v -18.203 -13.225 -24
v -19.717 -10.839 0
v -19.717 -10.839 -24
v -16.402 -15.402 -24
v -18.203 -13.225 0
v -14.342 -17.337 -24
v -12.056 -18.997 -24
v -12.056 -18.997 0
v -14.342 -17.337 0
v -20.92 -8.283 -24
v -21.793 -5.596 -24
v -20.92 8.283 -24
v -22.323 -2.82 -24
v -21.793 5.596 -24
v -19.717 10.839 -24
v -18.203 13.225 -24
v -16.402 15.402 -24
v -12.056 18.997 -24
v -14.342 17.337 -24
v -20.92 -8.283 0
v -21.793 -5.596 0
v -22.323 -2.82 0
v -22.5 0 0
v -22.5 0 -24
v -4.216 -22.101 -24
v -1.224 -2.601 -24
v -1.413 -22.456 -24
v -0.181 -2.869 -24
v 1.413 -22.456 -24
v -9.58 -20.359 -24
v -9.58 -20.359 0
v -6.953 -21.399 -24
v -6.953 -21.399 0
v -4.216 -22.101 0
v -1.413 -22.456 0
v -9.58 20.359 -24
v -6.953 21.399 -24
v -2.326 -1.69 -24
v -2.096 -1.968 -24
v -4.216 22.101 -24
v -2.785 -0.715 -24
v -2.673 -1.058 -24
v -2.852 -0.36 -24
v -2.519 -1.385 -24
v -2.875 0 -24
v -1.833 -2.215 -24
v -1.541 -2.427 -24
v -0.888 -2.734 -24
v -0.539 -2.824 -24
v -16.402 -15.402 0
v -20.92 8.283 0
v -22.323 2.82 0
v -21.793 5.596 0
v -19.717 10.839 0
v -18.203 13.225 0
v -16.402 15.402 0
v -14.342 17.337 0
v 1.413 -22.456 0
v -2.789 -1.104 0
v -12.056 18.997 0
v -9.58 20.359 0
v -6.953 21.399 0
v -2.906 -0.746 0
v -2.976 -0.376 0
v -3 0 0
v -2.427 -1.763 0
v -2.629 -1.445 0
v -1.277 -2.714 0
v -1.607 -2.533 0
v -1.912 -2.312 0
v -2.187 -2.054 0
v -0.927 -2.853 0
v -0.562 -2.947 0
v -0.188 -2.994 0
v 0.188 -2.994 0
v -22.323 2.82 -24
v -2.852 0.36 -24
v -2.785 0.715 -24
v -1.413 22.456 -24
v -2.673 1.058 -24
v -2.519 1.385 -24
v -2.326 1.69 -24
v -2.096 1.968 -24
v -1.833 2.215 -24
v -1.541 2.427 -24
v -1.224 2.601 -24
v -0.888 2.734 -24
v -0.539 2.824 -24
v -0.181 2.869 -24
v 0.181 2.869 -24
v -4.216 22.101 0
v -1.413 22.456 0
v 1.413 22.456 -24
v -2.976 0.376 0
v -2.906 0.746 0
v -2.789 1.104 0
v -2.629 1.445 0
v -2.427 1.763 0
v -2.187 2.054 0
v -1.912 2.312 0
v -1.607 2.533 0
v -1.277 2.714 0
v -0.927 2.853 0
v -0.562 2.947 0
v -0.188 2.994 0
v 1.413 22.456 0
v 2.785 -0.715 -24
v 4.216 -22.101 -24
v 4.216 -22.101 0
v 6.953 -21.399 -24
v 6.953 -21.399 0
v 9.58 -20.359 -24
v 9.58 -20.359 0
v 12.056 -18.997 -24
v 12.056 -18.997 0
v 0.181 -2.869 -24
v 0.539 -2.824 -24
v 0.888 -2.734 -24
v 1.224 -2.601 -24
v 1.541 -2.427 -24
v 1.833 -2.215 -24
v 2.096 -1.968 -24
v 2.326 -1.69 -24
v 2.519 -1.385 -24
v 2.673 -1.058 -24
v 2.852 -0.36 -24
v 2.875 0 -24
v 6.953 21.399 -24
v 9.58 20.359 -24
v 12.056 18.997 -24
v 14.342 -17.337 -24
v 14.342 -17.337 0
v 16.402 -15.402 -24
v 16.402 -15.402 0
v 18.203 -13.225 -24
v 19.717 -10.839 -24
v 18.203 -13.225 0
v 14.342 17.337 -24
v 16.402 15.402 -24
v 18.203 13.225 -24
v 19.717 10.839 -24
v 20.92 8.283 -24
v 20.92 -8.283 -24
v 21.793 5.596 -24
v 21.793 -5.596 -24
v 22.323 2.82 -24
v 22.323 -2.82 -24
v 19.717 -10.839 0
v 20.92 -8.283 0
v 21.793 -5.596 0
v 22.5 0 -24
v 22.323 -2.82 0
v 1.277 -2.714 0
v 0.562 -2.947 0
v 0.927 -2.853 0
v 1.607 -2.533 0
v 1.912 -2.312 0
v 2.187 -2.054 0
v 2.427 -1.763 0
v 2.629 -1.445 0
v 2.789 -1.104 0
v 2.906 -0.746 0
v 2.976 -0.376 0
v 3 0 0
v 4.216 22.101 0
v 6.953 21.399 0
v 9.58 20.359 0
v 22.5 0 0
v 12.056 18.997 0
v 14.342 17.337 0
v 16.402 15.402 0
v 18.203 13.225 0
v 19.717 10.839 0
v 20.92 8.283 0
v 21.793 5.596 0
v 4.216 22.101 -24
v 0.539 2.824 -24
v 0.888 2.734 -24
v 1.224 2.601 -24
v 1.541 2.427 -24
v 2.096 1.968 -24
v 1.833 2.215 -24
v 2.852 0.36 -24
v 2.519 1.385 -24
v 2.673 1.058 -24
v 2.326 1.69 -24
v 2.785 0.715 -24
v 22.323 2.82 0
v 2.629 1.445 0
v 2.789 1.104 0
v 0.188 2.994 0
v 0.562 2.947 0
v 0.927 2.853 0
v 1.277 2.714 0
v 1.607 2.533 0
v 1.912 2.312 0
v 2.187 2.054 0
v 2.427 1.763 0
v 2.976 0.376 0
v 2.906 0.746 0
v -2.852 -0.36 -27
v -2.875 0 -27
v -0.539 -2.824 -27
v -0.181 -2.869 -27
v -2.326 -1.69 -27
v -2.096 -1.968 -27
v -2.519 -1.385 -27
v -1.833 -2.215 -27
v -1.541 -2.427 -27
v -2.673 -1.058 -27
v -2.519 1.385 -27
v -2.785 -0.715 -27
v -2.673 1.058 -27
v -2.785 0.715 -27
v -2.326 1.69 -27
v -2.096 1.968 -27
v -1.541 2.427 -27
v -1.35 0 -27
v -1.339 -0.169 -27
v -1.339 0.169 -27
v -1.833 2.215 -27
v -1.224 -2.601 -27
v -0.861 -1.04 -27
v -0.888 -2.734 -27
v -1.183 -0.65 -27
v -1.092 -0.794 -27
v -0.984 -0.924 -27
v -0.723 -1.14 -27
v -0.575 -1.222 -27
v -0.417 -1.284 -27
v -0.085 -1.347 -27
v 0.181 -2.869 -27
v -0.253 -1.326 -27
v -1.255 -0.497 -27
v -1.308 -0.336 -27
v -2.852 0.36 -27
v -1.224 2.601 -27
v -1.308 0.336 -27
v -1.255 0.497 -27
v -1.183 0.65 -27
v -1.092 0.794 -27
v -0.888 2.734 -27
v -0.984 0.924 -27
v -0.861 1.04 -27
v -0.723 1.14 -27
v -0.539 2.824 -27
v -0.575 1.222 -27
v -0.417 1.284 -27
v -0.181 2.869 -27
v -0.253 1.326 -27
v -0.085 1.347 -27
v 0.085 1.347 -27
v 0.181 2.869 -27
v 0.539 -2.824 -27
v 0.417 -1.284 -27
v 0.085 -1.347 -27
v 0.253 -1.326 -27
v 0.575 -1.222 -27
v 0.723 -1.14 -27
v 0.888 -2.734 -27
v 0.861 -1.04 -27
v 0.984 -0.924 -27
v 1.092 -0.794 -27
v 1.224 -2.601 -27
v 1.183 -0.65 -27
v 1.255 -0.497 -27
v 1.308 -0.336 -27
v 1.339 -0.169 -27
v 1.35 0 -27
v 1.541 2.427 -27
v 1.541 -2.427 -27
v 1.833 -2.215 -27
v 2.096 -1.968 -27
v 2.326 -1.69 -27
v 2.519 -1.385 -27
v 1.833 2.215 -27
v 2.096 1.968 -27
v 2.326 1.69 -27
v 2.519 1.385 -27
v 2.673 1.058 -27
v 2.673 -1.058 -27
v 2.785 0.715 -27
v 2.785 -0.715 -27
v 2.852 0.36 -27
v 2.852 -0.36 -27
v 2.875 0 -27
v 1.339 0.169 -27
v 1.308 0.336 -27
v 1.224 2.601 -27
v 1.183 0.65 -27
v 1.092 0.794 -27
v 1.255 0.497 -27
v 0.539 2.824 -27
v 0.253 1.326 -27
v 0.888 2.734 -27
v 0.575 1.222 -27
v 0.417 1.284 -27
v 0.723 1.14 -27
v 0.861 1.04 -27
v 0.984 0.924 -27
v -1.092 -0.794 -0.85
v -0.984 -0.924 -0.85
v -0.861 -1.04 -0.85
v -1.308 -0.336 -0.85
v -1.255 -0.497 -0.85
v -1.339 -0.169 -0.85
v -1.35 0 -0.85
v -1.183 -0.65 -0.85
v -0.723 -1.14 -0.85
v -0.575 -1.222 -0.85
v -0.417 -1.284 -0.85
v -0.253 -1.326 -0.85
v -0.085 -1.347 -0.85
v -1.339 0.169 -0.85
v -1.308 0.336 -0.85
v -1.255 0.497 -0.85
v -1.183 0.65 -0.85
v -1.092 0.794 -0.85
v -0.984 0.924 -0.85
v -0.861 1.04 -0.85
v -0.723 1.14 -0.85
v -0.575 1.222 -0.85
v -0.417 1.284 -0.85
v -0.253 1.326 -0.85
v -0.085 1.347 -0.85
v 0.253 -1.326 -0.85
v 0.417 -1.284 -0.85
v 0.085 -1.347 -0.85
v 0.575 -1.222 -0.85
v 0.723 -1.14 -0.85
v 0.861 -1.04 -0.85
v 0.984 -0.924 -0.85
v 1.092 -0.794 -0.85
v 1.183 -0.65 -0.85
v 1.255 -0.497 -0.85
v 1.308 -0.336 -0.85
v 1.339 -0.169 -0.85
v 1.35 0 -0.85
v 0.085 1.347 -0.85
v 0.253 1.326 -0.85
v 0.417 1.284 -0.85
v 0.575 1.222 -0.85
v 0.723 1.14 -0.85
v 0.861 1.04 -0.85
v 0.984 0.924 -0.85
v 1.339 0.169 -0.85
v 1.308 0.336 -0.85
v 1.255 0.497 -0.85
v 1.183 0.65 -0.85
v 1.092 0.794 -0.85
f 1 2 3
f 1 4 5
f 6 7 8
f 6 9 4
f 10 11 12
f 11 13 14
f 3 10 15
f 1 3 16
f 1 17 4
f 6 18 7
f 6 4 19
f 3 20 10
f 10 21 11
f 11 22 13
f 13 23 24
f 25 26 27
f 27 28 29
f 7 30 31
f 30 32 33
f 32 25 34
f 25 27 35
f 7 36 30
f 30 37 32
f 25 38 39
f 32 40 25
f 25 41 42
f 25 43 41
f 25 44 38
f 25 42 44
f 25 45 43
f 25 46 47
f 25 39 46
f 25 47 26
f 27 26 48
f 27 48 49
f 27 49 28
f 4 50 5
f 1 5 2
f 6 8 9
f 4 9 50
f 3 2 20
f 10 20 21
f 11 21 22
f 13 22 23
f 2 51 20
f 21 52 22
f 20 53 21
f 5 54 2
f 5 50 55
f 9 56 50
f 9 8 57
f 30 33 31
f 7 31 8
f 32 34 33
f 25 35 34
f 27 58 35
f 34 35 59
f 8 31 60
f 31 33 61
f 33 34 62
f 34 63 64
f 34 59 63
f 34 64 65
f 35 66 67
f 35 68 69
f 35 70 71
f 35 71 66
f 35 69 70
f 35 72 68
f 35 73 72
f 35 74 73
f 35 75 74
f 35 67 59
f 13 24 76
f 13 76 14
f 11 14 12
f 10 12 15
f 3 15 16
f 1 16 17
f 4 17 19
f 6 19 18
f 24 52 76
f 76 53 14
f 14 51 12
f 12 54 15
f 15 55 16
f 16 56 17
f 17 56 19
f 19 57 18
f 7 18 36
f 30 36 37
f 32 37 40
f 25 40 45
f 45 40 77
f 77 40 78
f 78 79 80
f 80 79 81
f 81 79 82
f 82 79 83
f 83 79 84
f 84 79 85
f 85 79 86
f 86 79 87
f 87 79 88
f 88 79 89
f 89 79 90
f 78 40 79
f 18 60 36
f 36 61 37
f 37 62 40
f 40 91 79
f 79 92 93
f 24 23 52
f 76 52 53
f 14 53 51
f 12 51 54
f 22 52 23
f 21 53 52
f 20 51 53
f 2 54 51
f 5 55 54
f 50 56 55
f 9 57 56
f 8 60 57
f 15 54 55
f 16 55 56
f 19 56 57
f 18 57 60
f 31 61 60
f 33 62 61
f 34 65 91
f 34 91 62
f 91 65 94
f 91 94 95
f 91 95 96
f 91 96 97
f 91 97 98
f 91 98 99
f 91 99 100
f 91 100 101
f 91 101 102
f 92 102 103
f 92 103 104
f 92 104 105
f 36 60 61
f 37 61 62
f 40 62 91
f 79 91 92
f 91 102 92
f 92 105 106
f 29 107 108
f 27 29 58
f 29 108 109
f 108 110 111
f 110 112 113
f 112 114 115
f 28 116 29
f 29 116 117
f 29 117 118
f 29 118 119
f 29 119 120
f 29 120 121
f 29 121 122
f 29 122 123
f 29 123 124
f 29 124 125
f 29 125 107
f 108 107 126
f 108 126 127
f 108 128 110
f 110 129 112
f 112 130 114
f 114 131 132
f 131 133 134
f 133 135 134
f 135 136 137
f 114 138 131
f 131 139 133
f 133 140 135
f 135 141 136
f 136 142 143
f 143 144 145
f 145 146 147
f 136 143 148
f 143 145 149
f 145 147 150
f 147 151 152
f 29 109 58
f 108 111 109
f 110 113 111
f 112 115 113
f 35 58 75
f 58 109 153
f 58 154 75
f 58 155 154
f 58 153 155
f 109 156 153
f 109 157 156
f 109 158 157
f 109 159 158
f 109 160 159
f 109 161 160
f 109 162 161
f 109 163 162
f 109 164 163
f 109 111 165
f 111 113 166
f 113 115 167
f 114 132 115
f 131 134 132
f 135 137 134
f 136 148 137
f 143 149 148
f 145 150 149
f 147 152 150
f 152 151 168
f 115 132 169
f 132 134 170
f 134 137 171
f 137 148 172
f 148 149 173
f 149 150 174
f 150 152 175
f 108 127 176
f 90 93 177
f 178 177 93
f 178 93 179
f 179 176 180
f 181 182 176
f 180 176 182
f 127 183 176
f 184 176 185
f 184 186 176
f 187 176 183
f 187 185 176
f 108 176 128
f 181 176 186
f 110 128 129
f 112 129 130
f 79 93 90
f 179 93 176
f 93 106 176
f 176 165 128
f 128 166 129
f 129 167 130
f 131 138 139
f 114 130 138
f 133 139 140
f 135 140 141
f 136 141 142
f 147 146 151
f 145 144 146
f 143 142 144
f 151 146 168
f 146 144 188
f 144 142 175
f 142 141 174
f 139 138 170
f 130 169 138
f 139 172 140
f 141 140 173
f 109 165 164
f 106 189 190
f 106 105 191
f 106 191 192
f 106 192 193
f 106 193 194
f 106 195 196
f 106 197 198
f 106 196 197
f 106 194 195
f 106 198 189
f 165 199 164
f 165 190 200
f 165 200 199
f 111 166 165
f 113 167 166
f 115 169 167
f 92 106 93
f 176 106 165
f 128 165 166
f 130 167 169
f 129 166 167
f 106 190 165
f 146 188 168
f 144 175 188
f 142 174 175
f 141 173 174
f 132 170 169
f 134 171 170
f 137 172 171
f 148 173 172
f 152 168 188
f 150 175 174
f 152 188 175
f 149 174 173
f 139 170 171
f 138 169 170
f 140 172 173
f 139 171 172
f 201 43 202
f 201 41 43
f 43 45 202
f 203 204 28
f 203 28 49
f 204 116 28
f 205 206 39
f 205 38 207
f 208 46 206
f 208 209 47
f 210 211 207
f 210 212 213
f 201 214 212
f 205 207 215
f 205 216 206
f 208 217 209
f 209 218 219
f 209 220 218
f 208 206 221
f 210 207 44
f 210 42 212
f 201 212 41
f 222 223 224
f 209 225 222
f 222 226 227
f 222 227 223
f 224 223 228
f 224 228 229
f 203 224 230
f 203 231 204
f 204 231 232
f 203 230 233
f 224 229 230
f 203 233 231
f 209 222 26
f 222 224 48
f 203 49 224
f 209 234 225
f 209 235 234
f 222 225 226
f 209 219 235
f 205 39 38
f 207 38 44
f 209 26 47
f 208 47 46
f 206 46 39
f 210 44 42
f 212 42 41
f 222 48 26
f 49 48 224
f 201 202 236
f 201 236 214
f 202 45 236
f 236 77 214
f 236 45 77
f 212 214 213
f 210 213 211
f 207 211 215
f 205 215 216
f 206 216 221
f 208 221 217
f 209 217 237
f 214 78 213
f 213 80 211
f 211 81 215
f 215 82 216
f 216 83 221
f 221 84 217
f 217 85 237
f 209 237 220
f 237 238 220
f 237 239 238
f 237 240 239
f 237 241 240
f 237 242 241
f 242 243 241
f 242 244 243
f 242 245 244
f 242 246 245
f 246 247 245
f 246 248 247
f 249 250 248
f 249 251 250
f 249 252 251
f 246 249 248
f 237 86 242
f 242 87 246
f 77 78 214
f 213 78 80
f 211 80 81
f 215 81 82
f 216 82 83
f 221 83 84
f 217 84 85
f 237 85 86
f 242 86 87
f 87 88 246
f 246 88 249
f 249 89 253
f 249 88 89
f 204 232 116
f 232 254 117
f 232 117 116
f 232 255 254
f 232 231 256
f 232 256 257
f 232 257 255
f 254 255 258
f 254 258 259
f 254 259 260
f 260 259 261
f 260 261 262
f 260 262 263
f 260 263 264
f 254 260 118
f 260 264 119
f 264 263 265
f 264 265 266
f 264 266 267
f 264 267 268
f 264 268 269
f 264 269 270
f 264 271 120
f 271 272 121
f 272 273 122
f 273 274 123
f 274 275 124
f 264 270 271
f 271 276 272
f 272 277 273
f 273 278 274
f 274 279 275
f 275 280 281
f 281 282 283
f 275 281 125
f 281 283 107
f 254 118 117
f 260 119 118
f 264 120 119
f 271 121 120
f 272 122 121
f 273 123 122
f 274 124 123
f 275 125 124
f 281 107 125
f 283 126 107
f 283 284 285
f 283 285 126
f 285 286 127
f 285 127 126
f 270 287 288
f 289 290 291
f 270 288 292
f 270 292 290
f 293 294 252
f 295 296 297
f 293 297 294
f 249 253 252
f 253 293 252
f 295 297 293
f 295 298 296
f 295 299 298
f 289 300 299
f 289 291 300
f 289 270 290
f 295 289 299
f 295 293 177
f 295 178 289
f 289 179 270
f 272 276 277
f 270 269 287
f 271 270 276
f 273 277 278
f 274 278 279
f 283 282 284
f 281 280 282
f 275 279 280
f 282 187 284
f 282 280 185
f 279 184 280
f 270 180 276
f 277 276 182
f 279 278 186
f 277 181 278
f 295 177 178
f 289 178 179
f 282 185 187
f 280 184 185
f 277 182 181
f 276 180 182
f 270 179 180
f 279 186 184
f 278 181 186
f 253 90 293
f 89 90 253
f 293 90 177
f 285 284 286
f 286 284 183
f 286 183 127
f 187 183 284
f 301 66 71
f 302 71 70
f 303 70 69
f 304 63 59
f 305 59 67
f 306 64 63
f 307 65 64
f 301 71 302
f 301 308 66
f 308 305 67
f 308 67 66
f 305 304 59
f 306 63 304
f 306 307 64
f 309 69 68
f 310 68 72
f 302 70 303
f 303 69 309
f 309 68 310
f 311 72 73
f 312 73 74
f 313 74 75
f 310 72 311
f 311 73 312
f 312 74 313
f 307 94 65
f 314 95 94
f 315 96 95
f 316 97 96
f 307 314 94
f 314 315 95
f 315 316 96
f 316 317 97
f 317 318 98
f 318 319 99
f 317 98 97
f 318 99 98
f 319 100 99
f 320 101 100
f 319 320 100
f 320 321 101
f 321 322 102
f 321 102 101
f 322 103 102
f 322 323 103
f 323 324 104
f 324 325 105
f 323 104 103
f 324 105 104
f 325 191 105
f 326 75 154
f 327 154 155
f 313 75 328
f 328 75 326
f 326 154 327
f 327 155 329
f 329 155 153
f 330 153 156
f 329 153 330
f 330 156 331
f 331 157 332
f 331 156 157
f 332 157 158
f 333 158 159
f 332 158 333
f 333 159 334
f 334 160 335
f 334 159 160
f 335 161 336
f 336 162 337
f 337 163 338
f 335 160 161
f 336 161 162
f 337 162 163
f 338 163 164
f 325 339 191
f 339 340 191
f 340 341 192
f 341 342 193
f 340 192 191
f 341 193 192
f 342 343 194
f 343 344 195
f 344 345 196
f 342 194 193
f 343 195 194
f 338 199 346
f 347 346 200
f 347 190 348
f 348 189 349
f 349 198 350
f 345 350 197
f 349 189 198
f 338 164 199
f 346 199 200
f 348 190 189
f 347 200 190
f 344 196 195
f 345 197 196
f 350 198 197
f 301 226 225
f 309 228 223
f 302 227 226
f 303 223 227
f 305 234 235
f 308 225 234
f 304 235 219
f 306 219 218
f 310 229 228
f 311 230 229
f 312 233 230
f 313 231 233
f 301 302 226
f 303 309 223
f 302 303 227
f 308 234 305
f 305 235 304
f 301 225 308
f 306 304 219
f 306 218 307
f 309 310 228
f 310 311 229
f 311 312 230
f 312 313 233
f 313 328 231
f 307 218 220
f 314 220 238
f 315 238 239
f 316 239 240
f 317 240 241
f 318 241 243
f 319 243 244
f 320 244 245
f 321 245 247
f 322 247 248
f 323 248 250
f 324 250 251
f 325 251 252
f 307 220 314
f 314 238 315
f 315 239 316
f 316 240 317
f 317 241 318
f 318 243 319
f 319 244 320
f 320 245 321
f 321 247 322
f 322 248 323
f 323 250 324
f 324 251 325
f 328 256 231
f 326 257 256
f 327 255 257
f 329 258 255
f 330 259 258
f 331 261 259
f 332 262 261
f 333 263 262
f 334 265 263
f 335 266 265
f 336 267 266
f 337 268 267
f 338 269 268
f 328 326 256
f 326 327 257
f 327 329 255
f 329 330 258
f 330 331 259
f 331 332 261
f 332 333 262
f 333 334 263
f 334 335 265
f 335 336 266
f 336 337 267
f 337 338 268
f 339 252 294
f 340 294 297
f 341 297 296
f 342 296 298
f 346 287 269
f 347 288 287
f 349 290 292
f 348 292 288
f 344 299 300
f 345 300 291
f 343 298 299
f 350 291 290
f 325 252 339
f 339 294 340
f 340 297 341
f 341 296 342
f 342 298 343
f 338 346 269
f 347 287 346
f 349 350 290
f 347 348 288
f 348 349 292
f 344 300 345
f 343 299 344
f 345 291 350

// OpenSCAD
$fn = 50;

difference() {
	union() {
		translate(v = [0, 0, -24.0]) {
			cylinder(h = 24, r = 22.5);
		}
		#translate(v = [0, 0, -27.0]) {
			cylinder(h = 27, r = 2.875);
		}
	}
	union() {
		translate(v = [0, 0, 0]) {
			rotate(a = [0, 0, 0]) {
				difference() {
					union() {
						translate(v = [0, 0, -27.0]) {
							cylinder(h = 27, r = 1.0);
						}
						translate(v = [0, 0, -0.85]) {
							cylinder(h = 0.85, r1 = 1.35, r2 = 3.0);
						}
						translate(v = [0, 0, -27.0]) {
							cylinder(h = 27, r = 1.35);
						}
						translate(v = [0, 0, -27.0]) {
							cylinder(h = 27, r = 1.0);
						}
					}
					union();
				}
			}
		}
	}
}
